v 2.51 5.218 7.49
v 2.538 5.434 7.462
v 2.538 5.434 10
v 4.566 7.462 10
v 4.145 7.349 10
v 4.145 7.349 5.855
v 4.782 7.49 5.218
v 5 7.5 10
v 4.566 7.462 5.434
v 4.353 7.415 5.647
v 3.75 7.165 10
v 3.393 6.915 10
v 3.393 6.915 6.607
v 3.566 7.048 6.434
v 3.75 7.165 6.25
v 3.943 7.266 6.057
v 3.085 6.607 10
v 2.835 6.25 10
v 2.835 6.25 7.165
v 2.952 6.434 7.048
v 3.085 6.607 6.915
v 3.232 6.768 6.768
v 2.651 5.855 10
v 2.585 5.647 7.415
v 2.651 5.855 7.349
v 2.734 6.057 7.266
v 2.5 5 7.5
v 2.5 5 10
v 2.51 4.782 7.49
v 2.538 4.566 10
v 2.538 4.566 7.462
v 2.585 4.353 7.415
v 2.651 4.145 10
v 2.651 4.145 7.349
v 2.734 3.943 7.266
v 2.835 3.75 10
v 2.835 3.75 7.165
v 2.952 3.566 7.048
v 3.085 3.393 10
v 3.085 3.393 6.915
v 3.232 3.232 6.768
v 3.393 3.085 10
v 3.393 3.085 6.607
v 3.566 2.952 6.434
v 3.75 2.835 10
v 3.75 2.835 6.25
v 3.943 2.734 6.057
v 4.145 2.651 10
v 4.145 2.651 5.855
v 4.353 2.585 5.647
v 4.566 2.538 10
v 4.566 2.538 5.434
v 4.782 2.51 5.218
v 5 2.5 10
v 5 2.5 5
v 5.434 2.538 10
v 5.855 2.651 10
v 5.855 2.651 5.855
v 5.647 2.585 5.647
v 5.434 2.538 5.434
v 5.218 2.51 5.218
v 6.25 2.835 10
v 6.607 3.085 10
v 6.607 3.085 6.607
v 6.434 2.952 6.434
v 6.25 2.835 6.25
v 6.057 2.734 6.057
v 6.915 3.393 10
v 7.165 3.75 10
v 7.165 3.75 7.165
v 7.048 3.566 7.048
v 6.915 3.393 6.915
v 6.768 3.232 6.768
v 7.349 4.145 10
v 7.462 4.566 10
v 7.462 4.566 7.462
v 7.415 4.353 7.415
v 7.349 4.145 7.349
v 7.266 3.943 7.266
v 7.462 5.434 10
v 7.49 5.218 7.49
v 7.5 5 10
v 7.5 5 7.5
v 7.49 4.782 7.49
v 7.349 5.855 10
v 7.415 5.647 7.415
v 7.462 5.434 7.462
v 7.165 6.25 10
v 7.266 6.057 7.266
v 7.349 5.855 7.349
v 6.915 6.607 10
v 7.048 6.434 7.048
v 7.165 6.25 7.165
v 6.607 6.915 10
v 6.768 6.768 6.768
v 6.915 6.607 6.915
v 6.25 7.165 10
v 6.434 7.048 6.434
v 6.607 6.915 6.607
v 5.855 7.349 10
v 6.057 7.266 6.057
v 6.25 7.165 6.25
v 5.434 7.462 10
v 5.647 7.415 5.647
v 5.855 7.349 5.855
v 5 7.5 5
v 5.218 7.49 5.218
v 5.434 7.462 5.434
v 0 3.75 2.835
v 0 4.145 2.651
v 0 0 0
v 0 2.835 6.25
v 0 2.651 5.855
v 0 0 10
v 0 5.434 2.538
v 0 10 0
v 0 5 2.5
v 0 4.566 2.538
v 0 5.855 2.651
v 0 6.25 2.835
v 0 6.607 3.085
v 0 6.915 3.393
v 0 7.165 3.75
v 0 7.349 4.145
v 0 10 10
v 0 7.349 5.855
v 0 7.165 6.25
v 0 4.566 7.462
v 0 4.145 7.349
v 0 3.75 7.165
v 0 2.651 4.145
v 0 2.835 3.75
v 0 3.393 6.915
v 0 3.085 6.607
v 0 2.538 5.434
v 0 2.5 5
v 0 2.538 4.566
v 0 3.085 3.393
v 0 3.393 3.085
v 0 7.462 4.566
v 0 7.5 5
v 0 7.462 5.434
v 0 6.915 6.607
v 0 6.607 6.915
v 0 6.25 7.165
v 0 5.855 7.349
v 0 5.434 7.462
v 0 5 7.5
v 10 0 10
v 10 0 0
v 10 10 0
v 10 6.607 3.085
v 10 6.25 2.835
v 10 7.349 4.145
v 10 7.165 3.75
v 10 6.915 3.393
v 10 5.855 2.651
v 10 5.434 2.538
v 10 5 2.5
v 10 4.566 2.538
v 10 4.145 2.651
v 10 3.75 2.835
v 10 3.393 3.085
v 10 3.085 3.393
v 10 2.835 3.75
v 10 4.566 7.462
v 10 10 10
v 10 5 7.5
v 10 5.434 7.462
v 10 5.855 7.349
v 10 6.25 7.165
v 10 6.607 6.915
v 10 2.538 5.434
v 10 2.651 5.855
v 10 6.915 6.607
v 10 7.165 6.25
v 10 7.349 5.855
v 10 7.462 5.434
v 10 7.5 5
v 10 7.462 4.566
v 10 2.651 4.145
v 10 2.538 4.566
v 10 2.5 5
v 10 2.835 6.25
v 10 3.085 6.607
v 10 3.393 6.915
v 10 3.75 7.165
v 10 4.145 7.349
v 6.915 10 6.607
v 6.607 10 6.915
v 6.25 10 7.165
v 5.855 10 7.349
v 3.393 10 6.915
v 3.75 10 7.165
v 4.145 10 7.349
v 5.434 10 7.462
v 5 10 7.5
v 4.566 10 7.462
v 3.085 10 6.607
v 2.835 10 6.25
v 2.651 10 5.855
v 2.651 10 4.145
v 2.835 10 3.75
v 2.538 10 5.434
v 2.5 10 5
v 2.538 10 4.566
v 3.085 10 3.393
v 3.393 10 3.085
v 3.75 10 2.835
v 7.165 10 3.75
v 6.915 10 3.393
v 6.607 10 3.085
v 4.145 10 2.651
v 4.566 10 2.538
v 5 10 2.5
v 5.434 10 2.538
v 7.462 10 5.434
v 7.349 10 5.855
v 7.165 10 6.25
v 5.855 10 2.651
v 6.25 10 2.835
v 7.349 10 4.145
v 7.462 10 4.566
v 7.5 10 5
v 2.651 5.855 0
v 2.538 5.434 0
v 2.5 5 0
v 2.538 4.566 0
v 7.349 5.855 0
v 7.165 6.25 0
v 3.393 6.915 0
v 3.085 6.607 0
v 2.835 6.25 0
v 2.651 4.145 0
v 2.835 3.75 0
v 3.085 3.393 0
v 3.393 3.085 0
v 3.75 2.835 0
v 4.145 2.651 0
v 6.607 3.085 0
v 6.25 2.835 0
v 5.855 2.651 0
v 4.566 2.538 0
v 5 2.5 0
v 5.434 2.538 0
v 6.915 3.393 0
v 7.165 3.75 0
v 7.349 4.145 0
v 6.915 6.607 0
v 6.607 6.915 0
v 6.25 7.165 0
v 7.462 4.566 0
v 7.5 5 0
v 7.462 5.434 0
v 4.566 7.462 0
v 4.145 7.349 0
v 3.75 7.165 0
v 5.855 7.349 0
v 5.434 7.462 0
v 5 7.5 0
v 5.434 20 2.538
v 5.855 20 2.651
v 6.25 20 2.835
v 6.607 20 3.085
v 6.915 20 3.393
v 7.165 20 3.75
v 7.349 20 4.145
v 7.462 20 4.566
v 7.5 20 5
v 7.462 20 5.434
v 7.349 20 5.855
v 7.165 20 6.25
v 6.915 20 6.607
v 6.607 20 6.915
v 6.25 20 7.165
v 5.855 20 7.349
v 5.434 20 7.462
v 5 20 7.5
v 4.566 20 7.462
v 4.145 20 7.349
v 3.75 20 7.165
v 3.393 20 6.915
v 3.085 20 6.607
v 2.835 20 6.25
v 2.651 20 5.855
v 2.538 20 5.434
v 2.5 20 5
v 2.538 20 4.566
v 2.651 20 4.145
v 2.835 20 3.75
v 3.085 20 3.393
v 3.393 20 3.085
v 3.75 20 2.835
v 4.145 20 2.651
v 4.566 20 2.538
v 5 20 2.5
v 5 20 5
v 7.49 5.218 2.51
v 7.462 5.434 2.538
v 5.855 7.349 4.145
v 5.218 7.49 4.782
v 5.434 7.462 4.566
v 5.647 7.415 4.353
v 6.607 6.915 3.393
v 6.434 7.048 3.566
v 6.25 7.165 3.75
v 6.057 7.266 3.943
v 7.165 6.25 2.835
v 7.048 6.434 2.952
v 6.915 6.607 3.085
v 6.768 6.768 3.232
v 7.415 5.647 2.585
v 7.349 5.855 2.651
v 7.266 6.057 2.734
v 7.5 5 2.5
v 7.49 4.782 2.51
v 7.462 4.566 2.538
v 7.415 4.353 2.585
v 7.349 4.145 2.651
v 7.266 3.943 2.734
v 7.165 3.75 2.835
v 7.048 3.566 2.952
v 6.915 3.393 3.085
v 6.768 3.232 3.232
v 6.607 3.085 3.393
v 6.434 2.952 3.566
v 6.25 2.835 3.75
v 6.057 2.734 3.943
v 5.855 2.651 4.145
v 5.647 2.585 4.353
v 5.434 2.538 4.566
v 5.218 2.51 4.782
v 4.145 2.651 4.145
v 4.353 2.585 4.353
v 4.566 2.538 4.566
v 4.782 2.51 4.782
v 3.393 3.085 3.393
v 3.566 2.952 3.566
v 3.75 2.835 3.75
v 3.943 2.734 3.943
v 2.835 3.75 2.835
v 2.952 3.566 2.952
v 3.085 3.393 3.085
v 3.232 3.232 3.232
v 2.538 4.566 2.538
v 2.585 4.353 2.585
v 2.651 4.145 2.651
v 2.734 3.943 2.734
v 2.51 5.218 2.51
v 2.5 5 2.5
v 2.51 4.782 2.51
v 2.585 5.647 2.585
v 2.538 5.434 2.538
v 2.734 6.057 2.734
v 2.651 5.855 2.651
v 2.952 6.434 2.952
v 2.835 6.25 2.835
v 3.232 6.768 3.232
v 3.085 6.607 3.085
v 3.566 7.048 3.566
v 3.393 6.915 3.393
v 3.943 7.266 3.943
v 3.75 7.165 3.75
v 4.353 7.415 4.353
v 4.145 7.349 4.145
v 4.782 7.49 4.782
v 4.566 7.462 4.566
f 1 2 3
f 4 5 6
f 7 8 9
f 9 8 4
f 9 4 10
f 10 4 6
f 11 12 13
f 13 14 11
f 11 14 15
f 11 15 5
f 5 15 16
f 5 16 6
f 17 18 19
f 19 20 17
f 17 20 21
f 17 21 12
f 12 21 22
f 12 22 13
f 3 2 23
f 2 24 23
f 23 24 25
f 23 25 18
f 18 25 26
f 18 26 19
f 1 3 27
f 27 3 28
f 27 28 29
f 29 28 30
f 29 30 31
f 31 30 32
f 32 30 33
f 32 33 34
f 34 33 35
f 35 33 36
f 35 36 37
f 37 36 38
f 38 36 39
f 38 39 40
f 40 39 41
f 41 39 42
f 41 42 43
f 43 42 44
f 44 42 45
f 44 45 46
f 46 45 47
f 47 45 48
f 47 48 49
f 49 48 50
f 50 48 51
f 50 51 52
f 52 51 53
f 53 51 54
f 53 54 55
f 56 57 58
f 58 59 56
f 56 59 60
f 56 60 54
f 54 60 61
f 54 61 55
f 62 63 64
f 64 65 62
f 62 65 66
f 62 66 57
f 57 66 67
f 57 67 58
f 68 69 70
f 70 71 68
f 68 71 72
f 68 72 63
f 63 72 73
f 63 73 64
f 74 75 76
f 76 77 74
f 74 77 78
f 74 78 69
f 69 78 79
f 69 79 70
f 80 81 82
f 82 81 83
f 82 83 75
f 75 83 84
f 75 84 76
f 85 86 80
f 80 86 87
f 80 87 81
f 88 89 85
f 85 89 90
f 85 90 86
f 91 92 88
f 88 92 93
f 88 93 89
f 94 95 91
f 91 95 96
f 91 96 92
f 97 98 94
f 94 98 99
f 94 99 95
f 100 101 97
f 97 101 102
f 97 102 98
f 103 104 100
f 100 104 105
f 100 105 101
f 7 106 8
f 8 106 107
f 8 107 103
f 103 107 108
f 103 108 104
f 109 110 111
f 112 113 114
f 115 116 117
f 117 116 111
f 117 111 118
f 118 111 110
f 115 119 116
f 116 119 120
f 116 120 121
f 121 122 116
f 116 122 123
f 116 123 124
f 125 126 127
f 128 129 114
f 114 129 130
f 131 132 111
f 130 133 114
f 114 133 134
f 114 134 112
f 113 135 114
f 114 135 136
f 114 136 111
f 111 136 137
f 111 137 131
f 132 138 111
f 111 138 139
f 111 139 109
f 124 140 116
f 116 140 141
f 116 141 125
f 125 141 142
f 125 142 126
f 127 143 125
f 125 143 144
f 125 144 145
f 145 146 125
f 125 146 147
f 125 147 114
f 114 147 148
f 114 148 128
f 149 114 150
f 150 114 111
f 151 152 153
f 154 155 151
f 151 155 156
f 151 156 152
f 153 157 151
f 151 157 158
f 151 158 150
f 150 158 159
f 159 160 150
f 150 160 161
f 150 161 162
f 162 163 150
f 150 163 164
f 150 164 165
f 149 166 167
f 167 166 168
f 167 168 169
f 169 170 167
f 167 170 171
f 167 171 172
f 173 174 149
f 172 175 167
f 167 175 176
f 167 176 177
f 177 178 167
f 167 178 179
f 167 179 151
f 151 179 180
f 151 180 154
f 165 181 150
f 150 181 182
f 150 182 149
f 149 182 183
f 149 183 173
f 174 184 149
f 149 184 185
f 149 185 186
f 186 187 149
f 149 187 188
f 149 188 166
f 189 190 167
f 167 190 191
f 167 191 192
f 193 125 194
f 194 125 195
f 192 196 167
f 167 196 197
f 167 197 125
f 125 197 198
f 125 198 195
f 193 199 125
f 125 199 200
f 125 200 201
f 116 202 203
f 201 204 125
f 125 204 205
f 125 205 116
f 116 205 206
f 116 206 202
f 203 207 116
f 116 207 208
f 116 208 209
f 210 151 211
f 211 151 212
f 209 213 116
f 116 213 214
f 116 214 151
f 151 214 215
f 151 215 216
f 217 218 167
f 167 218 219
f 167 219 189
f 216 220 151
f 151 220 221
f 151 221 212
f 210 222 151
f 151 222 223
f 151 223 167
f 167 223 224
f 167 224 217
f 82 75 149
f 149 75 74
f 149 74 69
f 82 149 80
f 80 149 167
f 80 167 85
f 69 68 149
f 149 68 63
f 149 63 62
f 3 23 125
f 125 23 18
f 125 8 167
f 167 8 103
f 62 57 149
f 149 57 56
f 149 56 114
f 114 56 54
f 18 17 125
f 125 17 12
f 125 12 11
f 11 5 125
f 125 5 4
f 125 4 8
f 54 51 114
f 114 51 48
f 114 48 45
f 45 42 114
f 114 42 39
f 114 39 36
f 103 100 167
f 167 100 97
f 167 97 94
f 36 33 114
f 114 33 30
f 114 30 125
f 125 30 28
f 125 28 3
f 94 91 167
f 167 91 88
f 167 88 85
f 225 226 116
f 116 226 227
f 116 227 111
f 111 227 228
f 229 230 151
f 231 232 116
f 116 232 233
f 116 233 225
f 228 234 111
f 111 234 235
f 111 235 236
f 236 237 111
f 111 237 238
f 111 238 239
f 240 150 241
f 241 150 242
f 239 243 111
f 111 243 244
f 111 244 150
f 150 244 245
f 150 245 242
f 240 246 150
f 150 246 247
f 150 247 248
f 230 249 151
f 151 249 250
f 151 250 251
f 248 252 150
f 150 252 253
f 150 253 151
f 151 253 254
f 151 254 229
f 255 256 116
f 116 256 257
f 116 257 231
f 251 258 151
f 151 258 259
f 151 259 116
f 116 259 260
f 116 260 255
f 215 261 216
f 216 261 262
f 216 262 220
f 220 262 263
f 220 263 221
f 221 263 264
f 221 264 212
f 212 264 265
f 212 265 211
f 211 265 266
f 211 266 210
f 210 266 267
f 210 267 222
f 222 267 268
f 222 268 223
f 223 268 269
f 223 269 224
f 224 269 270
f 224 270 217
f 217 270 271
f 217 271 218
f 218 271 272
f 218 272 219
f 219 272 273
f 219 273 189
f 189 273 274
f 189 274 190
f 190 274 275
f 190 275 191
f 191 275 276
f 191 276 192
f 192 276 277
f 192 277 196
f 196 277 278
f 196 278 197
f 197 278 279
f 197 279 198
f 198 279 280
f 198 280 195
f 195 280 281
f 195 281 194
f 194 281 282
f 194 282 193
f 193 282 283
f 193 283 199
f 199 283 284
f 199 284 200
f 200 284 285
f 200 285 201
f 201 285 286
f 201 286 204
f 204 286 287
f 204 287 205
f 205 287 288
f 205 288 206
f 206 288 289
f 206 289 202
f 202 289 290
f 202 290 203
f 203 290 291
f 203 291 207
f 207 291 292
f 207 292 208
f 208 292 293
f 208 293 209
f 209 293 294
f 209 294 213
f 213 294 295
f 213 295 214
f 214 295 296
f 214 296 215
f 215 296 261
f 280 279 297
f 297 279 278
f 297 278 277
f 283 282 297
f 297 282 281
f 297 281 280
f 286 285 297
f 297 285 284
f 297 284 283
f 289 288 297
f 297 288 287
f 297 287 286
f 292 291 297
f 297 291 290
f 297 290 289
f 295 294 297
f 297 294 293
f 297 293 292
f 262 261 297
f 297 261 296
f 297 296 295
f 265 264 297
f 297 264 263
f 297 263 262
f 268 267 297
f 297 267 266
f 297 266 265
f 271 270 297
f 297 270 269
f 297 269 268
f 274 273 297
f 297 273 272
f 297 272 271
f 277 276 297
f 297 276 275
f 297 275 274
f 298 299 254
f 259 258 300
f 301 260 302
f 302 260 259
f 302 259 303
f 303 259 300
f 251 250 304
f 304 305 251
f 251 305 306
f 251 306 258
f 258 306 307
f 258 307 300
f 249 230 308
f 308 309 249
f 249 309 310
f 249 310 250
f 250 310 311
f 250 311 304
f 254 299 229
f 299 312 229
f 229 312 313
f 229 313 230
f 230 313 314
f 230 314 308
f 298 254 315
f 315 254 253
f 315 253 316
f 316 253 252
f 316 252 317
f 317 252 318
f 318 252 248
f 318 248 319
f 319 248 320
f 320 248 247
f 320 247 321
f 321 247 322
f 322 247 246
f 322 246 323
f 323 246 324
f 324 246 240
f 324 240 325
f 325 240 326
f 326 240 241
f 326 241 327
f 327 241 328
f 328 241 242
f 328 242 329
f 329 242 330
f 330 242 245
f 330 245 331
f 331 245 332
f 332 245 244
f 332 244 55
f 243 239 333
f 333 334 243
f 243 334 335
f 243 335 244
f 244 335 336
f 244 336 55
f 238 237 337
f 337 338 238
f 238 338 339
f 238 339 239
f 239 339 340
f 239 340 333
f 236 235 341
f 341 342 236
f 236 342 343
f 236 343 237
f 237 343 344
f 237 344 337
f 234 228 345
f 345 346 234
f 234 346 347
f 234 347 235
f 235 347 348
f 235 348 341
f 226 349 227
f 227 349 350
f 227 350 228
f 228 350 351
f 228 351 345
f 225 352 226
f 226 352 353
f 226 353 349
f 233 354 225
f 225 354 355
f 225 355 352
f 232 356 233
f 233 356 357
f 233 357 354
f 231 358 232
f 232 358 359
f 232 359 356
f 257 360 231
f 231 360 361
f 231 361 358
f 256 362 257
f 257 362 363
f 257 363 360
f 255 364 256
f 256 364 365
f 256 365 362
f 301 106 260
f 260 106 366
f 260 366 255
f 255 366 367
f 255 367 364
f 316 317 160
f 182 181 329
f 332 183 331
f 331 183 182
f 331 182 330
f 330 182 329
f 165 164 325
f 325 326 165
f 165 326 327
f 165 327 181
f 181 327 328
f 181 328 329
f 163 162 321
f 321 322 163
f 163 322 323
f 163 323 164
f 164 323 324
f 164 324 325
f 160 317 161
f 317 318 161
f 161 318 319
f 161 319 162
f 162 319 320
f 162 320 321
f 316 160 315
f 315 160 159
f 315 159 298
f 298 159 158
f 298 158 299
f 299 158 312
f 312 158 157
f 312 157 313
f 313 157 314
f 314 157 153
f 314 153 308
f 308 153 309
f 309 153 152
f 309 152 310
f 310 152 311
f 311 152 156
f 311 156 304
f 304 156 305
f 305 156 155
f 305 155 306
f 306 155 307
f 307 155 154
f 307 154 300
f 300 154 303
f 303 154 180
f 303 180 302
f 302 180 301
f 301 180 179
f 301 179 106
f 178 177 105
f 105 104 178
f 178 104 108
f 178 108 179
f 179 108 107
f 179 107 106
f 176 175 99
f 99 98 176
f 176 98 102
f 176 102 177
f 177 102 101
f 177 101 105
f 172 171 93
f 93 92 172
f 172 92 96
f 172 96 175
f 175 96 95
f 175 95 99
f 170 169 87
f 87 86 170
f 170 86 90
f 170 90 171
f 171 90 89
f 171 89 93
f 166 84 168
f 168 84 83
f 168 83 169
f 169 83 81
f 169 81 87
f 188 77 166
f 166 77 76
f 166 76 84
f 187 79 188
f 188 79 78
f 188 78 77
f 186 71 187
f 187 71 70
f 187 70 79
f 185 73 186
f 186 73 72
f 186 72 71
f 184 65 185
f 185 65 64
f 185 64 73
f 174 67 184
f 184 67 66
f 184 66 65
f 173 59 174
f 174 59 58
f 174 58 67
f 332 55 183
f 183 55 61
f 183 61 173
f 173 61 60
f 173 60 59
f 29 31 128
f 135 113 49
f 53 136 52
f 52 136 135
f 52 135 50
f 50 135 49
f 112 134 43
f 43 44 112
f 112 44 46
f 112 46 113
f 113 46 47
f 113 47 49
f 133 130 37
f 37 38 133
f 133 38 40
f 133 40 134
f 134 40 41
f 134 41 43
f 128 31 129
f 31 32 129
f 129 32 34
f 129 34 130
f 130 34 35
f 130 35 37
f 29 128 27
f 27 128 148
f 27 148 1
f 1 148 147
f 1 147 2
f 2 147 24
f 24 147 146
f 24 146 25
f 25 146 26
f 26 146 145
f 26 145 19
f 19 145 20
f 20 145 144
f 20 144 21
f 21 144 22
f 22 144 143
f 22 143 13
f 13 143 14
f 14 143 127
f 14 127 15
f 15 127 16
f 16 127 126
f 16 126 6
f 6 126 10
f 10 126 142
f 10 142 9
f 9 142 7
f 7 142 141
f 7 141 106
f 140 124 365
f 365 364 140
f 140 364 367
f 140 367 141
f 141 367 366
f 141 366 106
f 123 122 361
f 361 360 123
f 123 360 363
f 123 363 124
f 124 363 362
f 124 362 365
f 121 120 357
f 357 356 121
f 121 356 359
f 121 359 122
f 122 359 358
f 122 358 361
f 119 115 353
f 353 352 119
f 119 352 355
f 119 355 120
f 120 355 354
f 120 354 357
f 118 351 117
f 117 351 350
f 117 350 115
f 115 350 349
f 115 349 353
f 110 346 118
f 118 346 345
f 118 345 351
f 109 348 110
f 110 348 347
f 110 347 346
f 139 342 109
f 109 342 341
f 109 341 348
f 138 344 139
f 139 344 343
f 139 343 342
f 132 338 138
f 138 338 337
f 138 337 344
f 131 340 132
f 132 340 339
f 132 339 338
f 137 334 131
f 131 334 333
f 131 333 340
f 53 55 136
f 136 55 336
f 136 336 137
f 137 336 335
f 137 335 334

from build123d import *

# Parameters (mm, degrees)
SKETCH1_W           = 10
SKETCH1_H           = 10
BOSS_EXTRUDE1_DEPTH = 10
SKETCH2_R           = 2.5
BOSS_EXTRUDE2_DEPTH = 10
SKETCH3_R           = 2.5
CUT_EXTRUDE1_DEPTH  = 10
SKETCH4_R           = 2.5
CUT_EXTRUDE2_DEPTH  = 10


with BuildPart() as part:
    # Sketch1 → Boss-Extrude1 (new body)
    with BuildSketch(Plane.XY):
        with Locations((5, 5)):
            Rectangle(SKETCH1_W, SKETCH1_H)
    extrude(amount=BOSS_EXTRUDE1_DEPTH)

    # Sketch2 → Boss-Extrude2 (add)
    with BuildSketch(Plane(origin=(0, 10, 0), x_dir=(1, 0, 0), z_dir=(0, 1, 0))):
        with Locations(Location((5, -5, 0), (0, 0, 270))):
            Circle(SKETCH2_R)
    extrude(amount=BOSS_EXTRUDE2_DEPTH)

    # Sketch3 → Cut-Extrude1 (cut)
    with BuildSketch(Plane.XY.offset(10)):
        with Locations((5, 5)):
            Circle(SKETCH3_R)
    extrude(amount=-CUT_EXTRUDE1_DEPTH, mode=Mode.SUBTRACT)

    # Sketch4 → Cut-Extrude2 (cut)
    with BuildSketch(Plane(origin=(10, 0, 0), x_dir=(0, 0, -1), z_dir=(1, 0, 0))):
        with Locations(Location((-5, 5, 0), (0, 0, 90))):
            Circle(SKETCH4_R)
    extrude(amount=-CUT_EXTRUDE2_DEPTH, mode=Mode.SUBTRACT)


solid = part.part
